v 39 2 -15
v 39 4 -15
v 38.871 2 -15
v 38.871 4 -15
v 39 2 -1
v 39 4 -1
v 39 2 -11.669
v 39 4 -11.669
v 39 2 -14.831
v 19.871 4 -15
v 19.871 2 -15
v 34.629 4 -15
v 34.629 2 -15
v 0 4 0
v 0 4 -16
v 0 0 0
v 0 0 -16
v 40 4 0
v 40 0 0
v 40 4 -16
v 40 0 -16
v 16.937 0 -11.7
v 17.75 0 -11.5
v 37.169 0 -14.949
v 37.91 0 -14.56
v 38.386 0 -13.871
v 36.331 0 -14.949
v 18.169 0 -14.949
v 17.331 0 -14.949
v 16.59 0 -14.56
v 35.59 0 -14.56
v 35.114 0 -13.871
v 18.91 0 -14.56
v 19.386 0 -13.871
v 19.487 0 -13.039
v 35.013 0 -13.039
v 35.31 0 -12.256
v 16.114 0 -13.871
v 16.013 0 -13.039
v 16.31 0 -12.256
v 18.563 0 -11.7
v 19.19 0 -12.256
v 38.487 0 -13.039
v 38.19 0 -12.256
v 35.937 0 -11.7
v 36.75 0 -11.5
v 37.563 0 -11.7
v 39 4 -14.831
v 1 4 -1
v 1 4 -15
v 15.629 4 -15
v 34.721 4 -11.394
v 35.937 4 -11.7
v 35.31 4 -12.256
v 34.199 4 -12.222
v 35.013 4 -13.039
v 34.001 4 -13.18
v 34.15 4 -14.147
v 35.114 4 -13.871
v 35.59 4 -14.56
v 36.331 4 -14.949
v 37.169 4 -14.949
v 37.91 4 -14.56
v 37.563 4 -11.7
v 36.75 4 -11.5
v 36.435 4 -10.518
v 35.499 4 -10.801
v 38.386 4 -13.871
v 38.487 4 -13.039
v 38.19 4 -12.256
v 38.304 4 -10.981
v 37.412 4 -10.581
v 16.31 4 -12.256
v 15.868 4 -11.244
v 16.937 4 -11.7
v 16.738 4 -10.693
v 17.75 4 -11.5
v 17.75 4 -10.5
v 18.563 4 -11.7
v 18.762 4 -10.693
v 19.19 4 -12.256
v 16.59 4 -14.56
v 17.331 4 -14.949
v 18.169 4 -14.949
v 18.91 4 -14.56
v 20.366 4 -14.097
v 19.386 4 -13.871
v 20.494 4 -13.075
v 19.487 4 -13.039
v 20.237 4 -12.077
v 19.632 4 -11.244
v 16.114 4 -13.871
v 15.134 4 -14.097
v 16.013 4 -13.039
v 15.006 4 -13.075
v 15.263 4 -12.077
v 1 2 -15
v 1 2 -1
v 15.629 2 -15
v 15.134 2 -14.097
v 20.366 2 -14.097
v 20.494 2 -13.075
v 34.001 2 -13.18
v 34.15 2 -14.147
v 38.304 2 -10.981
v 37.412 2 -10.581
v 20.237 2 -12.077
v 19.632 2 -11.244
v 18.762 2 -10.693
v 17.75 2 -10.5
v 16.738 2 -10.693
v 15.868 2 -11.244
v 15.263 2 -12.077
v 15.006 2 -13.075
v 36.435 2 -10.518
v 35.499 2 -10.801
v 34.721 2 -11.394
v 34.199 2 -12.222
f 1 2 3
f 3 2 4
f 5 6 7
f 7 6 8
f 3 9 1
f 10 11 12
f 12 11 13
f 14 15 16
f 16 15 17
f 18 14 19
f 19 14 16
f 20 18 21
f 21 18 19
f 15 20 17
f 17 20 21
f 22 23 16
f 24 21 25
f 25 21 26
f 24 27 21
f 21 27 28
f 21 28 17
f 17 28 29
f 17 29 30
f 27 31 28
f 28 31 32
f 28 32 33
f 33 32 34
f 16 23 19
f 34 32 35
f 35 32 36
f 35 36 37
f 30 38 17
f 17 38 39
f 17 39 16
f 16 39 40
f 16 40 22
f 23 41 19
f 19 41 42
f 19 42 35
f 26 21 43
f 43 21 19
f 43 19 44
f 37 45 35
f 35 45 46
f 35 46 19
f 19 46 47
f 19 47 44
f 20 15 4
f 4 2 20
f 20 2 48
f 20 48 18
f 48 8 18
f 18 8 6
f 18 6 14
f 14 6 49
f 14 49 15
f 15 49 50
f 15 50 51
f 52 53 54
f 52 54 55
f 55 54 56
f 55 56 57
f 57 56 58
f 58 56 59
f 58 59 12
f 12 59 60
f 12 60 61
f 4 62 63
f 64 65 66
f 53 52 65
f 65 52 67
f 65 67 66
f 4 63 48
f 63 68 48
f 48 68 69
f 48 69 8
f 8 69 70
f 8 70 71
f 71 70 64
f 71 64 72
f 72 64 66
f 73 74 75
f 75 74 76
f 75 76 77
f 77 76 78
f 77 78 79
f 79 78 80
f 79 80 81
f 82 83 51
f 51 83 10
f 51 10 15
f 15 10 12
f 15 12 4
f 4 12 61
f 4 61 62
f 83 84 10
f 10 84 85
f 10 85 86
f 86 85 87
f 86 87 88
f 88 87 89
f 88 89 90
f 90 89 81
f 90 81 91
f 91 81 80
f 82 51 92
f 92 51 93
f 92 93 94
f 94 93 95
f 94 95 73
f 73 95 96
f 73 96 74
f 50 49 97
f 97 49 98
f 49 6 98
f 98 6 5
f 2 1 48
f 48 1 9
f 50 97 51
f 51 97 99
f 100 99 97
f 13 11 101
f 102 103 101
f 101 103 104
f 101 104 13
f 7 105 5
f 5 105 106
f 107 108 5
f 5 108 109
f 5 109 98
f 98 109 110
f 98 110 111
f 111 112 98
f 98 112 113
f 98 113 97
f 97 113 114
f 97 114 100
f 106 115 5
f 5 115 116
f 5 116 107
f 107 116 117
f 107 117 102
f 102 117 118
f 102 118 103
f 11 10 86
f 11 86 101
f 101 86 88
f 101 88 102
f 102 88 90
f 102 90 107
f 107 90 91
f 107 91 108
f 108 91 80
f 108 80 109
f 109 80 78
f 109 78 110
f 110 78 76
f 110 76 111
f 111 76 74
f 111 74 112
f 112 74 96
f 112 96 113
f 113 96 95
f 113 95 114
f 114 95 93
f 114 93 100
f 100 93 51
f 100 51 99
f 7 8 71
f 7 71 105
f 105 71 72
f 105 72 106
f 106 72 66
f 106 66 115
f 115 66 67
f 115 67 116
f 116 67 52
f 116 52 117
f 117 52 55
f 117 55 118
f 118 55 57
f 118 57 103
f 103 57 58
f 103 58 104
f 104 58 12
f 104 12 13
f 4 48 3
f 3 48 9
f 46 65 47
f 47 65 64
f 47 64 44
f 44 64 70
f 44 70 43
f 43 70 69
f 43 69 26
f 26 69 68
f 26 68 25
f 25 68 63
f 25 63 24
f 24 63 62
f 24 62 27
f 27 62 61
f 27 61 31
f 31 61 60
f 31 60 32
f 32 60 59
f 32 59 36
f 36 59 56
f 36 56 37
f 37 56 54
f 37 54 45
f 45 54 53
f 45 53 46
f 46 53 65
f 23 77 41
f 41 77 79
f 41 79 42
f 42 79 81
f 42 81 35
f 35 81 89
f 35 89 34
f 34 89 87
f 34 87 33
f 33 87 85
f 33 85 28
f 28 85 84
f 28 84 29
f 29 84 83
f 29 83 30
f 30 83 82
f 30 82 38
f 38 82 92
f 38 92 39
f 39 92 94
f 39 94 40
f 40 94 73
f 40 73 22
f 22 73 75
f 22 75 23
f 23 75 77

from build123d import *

# Parameters (mm, degrees)
SKETCH1_W           = 40
SKETCH1_H           = 16
BOSS_EXTRUDE1_DEPTH = 2
SKETCH2_W           = 40
SKETCH2_H           = 16
SKETCH2_W_2         = 38
SKETCH2_H_2         = 14
BOSS_EXTRUDE2_DEPTH = 2
BOSS_EXTRUDE5_REACH = 45.267
SKETCH3_R           = 2.75
SKETCH4_R           = 1.75
CUT_EXTRUDE1_DEPTH  = 44.266615306


with BuildPart() as part:
    # Sketch1 → Boss-Extrude1 (new body)
    with BuildSketch(Plane(origin=(0, 0, 0), x_dir=(1, 0, 0), z_dir=(0, 1, 0))):
        with Locations((20, 8)):
            Rectangle(SKETCH1_W, SKETCH1_H)
    extrude(amount=BOSS_EXTRUDE1_DEPTH)

    # Sketch2 → Boss-Extrude2 (add)
    with BuildSketch(Plane(origin=(0, 2, 0), x_dir=(1, 0, 0), z_dir=(0, 1, 0))):
        with Locations((20, 8)):
            Rectangle(SKETCH2_W, SKETCH2_H)
        with Locations((20, 8)):
            Rectangle(SKETCH2_W_2, SKETCH2_H_2, mode=Mode.SUBTRACT)
    extrude(amount=BOSS_EXTRUDE2_DEPTH)

    # Sketch3 → Boss-Extrude5 (add, up to next)
    with BuildSketch(Plane(origin=(0, 4, 0), x_dir=(1, 0, 0), z_dir=(0, 1, 0)), mode=Mode.PRIVATE) as boss_extrude5_sk1:
        with Locations((17.75, 13.25)):
            Circle(SKETCH3_R)
    boss_extrude5_tool1 = extrude(boss_extrude5_sk1.sketch, amount=-BOSS_EXTRUDE5_REACH, mode=Mode.PRIVATE) - part.part
    # Sketch3 → Boss-Extrude5 (add, up to next)
    with BuildSketch(Plane(origin=(0, 4, 0), x_dir=(1, 0, 0), z_dir=(0, 1, 0)), mode=Mode.PRIVATE) as boss_extrude5_sk2:
        with Locations((36.75, 13.25)):
            Circle(SKETCH3_R)
    boss_extrude5_tool2 = extrude(boss_extrude5_sk2.sketch, amount=-BOSS_EXTRUDE5_REACH, mode=Mode.PRIVATE) - part.part
    add(boss_extrude5_tool1.solids().sort_by_distance((17.75, 4, -13.25))[0])
    add(boss_extrude5_tool2.solids().sort_by_distance((36.75, 4, -13.25))[0])

    # Sketch4 → Cut-Extrude1 (cut, through all)
    with BuildSketch(Plane(origin=(0, 4, 0), x_dir=(1, 0, 0), z_dir=(0, 1, 0))):
        with Locations(Location((17.75, 13.25, 0), (0, 0, 270))):
            Circle(SKETCH4_R)
        with Locations(Location((36.75, 13.25, 0), (0, 0, 270))):
            Circle(SKETCH4_R)
    extrude(amount=-CUT_EXTRUDE1_DEPTH, mode=Mode.SUBTRACT)


solid = part.part
